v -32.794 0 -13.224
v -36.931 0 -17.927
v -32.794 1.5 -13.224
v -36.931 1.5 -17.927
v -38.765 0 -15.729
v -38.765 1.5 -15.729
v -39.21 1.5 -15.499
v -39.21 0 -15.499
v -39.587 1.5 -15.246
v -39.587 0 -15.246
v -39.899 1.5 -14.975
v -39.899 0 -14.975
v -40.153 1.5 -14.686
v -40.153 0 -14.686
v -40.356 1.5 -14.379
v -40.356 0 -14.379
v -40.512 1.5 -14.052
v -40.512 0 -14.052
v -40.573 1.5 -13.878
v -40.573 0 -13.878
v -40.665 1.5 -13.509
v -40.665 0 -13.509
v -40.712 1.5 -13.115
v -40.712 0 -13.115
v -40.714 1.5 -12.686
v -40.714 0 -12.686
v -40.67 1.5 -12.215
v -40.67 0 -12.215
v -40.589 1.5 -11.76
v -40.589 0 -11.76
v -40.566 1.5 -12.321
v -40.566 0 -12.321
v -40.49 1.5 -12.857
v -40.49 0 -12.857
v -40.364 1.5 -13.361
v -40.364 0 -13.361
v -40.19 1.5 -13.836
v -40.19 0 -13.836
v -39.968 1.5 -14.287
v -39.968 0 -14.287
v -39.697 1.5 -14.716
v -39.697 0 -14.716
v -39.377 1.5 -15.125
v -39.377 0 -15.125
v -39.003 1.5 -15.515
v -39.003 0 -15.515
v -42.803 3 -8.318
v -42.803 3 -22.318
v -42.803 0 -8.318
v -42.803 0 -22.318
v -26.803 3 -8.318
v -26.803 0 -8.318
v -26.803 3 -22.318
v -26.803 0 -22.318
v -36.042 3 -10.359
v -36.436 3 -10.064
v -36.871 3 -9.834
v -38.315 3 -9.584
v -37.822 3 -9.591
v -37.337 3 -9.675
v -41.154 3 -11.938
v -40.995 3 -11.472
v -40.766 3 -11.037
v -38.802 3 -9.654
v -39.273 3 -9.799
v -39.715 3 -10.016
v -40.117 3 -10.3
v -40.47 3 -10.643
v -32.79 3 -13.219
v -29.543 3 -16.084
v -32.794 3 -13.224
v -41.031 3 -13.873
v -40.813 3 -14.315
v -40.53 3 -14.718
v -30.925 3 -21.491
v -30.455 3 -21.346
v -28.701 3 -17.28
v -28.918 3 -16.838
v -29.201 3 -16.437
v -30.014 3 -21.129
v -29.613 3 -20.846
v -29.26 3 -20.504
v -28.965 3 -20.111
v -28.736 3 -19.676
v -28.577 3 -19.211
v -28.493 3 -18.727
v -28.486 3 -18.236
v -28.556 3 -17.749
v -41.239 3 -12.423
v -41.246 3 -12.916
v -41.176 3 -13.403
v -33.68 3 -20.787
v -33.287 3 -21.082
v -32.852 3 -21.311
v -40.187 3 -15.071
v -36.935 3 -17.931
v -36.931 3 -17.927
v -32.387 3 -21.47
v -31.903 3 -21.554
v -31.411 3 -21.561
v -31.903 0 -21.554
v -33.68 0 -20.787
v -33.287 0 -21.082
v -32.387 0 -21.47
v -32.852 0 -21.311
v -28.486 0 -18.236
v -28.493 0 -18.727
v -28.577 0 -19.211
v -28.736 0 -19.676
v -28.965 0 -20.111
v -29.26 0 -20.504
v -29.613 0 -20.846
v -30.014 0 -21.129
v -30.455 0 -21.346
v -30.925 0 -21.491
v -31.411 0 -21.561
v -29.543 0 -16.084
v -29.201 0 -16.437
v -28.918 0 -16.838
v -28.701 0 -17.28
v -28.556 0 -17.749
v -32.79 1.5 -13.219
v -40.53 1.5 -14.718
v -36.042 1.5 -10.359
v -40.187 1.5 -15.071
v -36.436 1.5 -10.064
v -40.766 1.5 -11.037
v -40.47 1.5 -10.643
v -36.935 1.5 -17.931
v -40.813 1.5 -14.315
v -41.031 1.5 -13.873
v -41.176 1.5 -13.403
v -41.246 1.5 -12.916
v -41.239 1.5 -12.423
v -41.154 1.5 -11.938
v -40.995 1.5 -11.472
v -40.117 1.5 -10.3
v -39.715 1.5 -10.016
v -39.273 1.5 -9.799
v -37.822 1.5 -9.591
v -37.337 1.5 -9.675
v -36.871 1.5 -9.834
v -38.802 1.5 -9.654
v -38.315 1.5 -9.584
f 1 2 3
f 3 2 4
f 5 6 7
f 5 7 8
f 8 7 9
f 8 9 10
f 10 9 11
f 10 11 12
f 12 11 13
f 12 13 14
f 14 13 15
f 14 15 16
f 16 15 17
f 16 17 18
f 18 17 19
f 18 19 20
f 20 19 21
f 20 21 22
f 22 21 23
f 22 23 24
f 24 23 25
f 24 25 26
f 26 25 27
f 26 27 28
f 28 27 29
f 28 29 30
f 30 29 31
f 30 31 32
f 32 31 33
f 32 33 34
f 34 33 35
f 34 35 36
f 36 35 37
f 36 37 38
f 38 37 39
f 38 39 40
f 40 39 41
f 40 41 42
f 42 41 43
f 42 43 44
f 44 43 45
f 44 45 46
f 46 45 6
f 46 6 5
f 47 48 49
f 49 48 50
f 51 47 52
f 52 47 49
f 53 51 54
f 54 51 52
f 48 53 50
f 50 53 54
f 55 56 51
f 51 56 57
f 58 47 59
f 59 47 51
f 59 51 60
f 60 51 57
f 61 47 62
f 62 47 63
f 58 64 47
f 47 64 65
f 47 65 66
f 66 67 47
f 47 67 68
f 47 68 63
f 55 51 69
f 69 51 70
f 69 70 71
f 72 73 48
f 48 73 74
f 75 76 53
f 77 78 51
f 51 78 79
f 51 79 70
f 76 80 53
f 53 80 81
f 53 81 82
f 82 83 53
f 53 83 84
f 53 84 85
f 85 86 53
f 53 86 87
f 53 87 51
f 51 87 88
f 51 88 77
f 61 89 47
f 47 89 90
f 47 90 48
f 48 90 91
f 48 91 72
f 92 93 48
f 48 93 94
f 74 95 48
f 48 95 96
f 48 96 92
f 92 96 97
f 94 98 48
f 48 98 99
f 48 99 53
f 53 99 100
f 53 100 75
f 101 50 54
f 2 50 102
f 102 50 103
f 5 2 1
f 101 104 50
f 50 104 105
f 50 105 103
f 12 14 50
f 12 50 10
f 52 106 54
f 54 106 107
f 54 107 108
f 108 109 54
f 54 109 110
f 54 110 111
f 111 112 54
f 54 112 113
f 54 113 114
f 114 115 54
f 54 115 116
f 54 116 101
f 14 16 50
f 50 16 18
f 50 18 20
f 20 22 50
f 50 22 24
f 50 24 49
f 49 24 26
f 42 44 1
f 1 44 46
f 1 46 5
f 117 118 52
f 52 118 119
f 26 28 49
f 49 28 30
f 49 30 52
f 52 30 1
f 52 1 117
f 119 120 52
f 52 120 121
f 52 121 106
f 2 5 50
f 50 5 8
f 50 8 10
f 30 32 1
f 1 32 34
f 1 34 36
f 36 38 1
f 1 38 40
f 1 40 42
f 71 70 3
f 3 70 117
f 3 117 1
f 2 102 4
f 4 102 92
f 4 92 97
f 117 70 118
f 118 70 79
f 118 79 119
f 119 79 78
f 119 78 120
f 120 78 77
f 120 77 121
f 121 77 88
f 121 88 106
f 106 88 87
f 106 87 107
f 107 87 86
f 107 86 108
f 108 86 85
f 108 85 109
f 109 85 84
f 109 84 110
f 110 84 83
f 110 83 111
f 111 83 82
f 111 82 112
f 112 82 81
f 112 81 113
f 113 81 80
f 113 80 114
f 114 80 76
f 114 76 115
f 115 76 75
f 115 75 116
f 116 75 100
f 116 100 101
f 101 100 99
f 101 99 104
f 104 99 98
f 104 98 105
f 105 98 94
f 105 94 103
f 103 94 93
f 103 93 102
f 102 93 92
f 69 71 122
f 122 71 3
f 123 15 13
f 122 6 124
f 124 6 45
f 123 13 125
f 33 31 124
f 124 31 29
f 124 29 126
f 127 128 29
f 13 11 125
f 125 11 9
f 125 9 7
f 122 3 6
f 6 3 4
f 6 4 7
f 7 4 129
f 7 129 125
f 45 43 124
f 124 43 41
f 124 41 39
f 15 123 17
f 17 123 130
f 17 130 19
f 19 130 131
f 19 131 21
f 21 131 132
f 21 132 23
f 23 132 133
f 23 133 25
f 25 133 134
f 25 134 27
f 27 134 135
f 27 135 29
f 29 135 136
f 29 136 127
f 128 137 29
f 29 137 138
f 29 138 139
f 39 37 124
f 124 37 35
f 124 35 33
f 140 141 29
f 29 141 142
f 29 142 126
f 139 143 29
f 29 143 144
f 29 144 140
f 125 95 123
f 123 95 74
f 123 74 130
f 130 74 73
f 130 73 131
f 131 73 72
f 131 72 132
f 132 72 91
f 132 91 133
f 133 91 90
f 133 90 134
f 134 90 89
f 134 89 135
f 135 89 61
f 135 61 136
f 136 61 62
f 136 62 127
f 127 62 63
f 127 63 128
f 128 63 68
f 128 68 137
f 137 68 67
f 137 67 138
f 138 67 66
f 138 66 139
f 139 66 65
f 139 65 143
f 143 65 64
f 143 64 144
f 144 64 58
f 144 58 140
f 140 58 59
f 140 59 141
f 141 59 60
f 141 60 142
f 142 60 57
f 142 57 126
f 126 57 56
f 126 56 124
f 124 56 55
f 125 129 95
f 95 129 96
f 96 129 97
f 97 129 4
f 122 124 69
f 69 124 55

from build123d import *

# Parameters (mm, degrees)
SKETCH1_W           = 16
SKETCH1_H           = 14
BOSS_EXTRUDE1_DEPTH = 3
CUT_EXTRUDE2_DEPTH  = 3
CUT_EXTRUDE3_DEPTH  = 1.5


with BuildPart() as part:
    # Sketch1 → Boss-Extrude1 (new body)
    with BuildSketch(Plane(origin=(0, 0, 0), x_dir=(1, 0, 0), z_dir=(0, 1, 0))):
        with Locations((-34.802547771, 15.318471338)):
            Rectangle(SKETCH1_W, SKETCH1_H)
    extrude(amount=BOSS_EXTRUDE1_DEPTH)

    # Sketch2 → Cut-Extrude2 (cut)
    with BuildSketch(Plane(origin=(0, 3, 0), x_dir=(1, 0, 0), z_dir=(0, 1, 0))):
        with BuildLine():
            Line((-33.679958269, 20.786982613), (-36.931417033, 17.926726524))
            Line((-36.931417033, 17.926726524), (-32.794432226, 13.223918421))
            Line((-32.794432226, 13.223918421), (-29.542973461, 16.08417451))
            ThreePointArc((-29.542973461, 16.08417451), (-29.260061814, 20.504070965), (-33.679958269, 20.786982613))
        make_face()
        with BuildLine():
            add(Edge.make_bspline(
                [(-40.589081196, 11.760287037), (-40.601113462, 14.156732858), (-38.765129592, 15.72931278)],
                knots=[0, 0, 0, 1, 1, 1], degree=2))
            add(Edge.make_bspline(
                [(-38.765129592, 15.72931278), (-40.696042452, 14.851396093), (-40.927669041, 13.342903488), (-40.589081196, 11.760287037)],
                knots=[0, 0, 0, 0, 1, 1, 1, 1], degree=3))
        make_face()
    extrude(amount=-CUT_EXTRUDE2_DEPTH, mode=Mode.SUBTRACT)

    # Sketch3 → Cut-Extrude3 (cut)
    with BuildSketch(Plane(origin=(0, 3, 0), x_dir=(1, 0, 0), z_dir=(0, 1, 0))):
        with BuildLine():
            Line((-32.790440937, 13.219381237), (-36.041899701, 10.359125148))
            ThreePointArc((-36.041899701, 10.359125148), (-40.470324629, 10.642582691), (-40.186867086, 15.071007619))
            Line((-40.186867086, 15.071007619), (-36.935408322, 17.931263708))
            Line((-36.935408322, 17.931263708), (-32.790440937, 13.219381237))
        make_face()
    extrude(amount=-CUT_EXTRUDE3_DEPTH, mode=Mode.SUBTRACT)


solid = part.part
